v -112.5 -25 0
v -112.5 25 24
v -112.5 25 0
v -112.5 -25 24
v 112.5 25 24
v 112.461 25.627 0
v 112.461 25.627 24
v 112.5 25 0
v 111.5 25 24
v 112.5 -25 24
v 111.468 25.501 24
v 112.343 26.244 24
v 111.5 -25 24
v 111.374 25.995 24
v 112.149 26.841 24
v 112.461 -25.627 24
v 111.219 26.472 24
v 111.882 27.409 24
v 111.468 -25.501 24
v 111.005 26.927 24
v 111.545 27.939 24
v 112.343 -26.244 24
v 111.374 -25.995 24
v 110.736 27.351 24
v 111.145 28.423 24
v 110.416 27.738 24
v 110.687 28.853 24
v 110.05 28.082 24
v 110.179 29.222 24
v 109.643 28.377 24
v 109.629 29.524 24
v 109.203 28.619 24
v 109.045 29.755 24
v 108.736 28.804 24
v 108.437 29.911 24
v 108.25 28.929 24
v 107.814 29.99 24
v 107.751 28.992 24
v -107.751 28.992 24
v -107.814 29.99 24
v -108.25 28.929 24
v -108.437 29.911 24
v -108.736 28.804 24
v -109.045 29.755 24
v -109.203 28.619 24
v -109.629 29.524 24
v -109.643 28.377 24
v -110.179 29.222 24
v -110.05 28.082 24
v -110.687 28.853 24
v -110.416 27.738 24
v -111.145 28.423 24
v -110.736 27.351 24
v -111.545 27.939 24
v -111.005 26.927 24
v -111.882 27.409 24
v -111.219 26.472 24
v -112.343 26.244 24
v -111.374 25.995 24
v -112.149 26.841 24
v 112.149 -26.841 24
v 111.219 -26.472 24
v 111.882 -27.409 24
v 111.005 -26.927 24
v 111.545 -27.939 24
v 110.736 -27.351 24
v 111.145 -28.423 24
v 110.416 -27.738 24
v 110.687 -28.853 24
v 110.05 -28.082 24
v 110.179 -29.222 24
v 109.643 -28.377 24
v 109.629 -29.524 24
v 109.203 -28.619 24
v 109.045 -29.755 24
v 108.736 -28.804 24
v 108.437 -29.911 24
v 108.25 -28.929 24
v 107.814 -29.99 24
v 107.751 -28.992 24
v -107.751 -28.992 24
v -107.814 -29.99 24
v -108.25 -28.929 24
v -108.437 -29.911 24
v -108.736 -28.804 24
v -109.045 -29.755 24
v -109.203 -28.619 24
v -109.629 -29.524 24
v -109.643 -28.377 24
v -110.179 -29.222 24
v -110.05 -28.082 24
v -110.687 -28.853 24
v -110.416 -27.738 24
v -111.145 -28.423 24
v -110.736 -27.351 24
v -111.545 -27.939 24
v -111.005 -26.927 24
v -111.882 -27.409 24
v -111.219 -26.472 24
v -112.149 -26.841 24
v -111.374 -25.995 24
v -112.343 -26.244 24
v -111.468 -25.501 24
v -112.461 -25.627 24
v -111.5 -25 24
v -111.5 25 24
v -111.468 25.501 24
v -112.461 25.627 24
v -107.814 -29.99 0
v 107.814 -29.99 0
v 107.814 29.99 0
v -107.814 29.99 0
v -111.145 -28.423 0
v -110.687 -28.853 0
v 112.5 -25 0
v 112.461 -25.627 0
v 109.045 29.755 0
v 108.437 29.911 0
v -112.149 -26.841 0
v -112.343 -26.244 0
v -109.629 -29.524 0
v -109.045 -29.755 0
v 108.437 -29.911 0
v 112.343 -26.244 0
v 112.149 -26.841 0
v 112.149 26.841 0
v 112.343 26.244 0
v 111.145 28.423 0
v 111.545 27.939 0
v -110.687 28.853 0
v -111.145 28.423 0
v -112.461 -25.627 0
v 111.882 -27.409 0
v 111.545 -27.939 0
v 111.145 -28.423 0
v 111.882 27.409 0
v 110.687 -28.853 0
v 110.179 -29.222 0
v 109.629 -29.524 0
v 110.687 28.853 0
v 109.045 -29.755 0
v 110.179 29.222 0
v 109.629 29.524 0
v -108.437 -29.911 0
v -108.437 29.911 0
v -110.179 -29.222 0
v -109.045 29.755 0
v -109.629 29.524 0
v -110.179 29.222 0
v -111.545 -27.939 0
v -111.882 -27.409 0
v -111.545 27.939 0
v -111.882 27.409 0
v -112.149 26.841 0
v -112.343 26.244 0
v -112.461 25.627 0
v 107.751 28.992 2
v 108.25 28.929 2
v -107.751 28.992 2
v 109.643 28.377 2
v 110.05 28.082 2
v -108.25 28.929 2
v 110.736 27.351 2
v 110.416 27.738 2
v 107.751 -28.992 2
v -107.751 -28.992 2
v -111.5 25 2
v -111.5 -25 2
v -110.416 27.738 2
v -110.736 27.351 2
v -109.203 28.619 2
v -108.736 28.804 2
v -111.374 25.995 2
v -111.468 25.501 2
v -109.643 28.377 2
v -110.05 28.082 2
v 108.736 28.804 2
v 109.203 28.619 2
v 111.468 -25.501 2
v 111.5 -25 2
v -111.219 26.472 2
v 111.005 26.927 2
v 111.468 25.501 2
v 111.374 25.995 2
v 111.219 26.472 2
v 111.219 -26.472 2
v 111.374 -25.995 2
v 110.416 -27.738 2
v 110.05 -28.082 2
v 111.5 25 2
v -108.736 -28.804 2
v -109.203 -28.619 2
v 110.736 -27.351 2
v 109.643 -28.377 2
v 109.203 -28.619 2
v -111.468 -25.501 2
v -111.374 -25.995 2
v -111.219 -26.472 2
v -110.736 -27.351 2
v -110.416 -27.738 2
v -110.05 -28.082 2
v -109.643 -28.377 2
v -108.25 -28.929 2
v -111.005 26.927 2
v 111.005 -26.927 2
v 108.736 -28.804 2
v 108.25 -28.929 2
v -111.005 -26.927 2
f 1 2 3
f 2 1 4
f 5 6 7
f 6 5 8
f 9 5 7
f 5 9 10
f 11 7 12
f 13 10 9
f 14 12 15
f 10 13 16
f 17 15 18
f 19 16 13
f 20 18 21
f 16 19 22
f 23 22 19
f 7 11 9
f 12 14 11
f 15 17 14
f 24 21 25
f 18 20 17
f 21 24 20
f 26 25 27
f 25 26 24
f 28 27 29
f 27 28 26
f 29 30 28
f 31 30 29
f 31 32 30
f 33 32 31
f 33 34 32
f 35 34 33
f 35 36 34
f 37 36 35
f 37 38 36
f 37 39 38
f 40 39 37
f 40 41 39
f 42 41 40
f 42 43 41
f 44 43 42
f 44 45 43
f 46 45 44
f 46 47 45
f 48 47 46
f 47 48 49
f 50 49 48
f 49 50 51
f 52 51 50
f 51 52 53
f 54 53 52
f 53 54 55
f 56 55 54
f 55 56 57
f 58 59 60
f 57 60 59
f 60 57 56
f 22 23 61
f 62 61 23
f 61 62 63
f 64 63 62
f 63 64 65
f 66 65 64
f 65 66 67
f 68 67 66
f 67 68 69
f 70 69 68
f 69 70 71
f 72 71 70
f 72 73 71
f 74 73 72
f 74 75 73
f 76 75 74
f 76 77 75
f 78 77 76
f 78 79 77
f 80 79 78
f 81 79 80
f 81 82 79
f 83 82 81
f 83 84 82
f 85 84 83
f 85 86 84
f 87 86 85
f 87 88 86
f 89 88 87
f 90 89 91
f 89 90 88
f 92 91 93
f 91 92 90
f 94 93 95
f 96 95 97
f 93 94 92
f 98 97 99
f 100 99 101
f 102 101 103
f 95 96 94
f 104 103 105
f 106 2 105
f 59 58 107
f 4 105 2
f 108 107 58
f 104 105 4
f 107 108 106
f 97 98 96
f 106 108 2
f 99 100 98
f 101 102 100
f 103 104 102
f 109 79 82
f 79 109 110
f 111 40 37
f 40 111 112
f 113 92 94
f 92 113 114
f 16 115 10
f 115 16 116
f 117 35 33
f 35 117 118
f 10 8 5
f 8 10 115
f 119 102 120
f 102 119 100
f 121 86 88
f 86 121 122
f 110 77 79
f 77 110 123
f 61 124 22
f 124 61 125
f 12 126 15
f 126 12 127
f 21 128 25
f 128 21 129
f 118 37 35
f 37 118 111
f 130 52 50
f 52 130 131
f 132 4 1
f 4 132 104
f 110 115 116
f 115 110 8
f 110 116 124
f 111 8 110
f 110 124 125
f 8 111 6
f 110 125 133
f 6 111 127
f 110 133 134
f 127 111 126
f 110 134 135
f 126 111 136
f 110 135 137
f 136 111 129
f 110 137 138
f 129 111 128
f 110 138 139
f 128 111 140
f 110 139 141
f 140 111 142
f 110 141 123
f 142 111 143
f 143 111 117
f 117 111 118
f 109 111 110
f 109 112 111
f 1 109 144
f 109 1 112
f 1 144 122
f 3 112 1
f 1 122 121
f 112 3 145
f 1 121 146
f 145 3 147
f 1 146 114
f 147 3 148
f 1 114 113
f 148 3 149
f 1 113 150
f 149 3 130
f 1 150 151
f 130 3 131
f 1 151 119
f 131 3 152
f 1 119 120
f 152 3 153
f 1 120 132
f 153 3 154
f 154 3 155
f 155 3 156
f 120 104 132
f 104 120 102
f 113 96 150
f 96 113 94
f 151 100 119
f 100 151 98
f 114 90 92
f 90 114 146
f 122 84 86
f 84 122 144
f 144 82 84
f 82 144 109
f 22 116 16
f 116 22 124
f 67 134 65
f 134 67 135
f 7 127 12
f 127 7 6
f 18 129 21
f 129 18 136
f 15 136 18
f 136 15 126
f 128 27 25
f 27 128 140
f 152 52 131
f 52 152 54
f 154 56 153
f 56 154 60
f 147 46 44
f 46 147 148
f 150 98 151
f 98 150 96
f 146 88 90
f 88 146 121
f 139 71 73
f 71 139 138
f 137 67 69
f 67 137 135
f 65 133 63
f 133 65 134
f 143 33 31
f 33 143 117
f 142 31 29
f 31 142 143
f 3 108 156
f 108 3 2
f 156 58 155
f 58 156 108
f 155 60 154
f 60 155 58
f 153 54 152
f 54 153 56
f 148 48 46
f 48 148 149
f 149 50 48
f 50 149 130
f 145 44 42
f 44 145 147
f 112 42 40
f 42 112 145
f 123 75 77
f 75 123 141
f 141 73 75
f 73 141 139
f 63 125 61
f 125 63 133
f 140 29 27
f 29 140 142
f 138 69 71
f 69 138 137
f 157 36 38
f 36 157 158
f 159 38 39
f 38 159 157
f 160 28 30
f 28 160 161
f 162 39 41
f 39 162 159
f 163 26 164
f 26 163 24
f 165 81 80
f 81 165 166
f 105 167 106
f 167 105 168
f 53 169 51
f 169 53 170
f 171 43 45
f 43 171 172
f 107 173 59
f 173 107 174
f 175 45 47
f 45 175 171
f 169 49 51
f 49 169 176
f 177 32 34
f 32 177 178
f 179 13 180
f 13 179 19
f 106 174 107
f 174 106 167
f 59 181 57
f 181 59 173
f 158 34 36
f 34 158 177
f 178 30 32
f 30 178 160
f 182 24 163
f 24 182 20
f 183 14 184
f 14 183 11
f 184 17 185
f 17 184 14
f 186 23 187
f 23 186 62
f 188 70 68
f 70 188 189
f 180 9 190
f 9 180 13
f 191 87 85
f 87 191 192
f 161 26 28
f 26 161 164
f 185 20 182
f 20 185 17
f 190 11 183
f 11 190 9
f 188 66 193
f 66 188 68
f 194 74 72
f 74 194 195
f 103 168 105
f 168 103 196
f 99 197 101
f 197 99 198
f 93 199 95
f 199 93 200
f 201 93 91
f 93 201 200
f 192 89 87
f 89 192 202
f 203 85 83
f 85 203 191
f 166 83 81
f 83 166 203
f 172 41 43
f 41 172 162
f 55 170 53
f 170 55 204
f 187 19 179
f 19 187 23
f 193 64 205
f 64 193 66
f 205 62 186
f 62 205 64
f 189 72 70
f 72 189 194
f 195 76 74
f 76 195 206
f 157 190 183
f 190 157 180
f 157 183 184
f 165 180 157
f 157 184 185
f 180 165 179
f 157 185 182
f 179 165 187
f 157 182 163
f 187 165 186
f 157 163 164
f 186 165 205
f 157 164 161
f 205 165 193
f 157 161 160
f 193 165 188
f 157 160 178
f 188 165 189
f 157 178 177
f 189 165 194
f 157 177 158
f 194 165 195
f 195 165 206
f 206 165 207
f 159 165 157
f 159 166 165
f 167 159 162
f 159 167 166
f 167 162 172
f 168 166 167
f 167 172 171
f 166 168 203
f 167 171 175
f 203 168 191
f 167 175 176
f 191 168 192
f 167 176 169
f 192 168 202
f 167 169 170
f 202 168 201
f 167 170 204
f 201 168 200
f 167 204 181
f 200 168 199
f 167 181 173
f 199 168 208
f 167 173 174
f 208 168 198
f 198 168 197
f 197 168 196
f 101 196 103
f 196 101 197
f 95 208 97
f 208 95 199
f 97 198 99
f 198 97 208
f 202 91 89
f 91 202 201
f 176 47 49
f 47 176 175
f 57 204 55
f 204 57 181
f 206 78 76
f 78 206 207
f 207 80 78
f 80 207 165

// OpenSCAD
$fn = 50;


difference() {
	union() {
		hull() {
			translate(v = [-107.5000000000, 25.0000000000, 0]) {
				cylinder(h = 24, r = 5);
			}
			translate(v = [107.5000000000, 25.0000000000, 0]) {
				cylinder(h = 24, r = 5);
			}
			translate(v = [-107.5000000000, -25.0000000000, 0]) {
				cylinder(h = 24, r = 5);
			}
			translate(v = [107.5000000000, -25.0000000000, 0]) {
				cylinder(h = 24, r = 5);
			}
		}
	}
	union() {
		translate(v = [0, 0, 2]) {
			hull() {
				translate(v = [-107.5000000000, 25.0000000000, 0]) {
					cylinder(h = 22, r = 4);
				}
				translate(v = [107.5000000000, 25.0000000000, 0]) {
					cylinder(h = 22, r = 4);
				}
				translate(v = [-107.5000000000, -25.0000000000, 0]) {
					cylinder(h = 22, r = 4);
				}
				translate(v = [107.5000000000, -25.0000000000, 0]) {
					cylinder(h = 22, r = 4);
				}
			}
		}
	}
}
